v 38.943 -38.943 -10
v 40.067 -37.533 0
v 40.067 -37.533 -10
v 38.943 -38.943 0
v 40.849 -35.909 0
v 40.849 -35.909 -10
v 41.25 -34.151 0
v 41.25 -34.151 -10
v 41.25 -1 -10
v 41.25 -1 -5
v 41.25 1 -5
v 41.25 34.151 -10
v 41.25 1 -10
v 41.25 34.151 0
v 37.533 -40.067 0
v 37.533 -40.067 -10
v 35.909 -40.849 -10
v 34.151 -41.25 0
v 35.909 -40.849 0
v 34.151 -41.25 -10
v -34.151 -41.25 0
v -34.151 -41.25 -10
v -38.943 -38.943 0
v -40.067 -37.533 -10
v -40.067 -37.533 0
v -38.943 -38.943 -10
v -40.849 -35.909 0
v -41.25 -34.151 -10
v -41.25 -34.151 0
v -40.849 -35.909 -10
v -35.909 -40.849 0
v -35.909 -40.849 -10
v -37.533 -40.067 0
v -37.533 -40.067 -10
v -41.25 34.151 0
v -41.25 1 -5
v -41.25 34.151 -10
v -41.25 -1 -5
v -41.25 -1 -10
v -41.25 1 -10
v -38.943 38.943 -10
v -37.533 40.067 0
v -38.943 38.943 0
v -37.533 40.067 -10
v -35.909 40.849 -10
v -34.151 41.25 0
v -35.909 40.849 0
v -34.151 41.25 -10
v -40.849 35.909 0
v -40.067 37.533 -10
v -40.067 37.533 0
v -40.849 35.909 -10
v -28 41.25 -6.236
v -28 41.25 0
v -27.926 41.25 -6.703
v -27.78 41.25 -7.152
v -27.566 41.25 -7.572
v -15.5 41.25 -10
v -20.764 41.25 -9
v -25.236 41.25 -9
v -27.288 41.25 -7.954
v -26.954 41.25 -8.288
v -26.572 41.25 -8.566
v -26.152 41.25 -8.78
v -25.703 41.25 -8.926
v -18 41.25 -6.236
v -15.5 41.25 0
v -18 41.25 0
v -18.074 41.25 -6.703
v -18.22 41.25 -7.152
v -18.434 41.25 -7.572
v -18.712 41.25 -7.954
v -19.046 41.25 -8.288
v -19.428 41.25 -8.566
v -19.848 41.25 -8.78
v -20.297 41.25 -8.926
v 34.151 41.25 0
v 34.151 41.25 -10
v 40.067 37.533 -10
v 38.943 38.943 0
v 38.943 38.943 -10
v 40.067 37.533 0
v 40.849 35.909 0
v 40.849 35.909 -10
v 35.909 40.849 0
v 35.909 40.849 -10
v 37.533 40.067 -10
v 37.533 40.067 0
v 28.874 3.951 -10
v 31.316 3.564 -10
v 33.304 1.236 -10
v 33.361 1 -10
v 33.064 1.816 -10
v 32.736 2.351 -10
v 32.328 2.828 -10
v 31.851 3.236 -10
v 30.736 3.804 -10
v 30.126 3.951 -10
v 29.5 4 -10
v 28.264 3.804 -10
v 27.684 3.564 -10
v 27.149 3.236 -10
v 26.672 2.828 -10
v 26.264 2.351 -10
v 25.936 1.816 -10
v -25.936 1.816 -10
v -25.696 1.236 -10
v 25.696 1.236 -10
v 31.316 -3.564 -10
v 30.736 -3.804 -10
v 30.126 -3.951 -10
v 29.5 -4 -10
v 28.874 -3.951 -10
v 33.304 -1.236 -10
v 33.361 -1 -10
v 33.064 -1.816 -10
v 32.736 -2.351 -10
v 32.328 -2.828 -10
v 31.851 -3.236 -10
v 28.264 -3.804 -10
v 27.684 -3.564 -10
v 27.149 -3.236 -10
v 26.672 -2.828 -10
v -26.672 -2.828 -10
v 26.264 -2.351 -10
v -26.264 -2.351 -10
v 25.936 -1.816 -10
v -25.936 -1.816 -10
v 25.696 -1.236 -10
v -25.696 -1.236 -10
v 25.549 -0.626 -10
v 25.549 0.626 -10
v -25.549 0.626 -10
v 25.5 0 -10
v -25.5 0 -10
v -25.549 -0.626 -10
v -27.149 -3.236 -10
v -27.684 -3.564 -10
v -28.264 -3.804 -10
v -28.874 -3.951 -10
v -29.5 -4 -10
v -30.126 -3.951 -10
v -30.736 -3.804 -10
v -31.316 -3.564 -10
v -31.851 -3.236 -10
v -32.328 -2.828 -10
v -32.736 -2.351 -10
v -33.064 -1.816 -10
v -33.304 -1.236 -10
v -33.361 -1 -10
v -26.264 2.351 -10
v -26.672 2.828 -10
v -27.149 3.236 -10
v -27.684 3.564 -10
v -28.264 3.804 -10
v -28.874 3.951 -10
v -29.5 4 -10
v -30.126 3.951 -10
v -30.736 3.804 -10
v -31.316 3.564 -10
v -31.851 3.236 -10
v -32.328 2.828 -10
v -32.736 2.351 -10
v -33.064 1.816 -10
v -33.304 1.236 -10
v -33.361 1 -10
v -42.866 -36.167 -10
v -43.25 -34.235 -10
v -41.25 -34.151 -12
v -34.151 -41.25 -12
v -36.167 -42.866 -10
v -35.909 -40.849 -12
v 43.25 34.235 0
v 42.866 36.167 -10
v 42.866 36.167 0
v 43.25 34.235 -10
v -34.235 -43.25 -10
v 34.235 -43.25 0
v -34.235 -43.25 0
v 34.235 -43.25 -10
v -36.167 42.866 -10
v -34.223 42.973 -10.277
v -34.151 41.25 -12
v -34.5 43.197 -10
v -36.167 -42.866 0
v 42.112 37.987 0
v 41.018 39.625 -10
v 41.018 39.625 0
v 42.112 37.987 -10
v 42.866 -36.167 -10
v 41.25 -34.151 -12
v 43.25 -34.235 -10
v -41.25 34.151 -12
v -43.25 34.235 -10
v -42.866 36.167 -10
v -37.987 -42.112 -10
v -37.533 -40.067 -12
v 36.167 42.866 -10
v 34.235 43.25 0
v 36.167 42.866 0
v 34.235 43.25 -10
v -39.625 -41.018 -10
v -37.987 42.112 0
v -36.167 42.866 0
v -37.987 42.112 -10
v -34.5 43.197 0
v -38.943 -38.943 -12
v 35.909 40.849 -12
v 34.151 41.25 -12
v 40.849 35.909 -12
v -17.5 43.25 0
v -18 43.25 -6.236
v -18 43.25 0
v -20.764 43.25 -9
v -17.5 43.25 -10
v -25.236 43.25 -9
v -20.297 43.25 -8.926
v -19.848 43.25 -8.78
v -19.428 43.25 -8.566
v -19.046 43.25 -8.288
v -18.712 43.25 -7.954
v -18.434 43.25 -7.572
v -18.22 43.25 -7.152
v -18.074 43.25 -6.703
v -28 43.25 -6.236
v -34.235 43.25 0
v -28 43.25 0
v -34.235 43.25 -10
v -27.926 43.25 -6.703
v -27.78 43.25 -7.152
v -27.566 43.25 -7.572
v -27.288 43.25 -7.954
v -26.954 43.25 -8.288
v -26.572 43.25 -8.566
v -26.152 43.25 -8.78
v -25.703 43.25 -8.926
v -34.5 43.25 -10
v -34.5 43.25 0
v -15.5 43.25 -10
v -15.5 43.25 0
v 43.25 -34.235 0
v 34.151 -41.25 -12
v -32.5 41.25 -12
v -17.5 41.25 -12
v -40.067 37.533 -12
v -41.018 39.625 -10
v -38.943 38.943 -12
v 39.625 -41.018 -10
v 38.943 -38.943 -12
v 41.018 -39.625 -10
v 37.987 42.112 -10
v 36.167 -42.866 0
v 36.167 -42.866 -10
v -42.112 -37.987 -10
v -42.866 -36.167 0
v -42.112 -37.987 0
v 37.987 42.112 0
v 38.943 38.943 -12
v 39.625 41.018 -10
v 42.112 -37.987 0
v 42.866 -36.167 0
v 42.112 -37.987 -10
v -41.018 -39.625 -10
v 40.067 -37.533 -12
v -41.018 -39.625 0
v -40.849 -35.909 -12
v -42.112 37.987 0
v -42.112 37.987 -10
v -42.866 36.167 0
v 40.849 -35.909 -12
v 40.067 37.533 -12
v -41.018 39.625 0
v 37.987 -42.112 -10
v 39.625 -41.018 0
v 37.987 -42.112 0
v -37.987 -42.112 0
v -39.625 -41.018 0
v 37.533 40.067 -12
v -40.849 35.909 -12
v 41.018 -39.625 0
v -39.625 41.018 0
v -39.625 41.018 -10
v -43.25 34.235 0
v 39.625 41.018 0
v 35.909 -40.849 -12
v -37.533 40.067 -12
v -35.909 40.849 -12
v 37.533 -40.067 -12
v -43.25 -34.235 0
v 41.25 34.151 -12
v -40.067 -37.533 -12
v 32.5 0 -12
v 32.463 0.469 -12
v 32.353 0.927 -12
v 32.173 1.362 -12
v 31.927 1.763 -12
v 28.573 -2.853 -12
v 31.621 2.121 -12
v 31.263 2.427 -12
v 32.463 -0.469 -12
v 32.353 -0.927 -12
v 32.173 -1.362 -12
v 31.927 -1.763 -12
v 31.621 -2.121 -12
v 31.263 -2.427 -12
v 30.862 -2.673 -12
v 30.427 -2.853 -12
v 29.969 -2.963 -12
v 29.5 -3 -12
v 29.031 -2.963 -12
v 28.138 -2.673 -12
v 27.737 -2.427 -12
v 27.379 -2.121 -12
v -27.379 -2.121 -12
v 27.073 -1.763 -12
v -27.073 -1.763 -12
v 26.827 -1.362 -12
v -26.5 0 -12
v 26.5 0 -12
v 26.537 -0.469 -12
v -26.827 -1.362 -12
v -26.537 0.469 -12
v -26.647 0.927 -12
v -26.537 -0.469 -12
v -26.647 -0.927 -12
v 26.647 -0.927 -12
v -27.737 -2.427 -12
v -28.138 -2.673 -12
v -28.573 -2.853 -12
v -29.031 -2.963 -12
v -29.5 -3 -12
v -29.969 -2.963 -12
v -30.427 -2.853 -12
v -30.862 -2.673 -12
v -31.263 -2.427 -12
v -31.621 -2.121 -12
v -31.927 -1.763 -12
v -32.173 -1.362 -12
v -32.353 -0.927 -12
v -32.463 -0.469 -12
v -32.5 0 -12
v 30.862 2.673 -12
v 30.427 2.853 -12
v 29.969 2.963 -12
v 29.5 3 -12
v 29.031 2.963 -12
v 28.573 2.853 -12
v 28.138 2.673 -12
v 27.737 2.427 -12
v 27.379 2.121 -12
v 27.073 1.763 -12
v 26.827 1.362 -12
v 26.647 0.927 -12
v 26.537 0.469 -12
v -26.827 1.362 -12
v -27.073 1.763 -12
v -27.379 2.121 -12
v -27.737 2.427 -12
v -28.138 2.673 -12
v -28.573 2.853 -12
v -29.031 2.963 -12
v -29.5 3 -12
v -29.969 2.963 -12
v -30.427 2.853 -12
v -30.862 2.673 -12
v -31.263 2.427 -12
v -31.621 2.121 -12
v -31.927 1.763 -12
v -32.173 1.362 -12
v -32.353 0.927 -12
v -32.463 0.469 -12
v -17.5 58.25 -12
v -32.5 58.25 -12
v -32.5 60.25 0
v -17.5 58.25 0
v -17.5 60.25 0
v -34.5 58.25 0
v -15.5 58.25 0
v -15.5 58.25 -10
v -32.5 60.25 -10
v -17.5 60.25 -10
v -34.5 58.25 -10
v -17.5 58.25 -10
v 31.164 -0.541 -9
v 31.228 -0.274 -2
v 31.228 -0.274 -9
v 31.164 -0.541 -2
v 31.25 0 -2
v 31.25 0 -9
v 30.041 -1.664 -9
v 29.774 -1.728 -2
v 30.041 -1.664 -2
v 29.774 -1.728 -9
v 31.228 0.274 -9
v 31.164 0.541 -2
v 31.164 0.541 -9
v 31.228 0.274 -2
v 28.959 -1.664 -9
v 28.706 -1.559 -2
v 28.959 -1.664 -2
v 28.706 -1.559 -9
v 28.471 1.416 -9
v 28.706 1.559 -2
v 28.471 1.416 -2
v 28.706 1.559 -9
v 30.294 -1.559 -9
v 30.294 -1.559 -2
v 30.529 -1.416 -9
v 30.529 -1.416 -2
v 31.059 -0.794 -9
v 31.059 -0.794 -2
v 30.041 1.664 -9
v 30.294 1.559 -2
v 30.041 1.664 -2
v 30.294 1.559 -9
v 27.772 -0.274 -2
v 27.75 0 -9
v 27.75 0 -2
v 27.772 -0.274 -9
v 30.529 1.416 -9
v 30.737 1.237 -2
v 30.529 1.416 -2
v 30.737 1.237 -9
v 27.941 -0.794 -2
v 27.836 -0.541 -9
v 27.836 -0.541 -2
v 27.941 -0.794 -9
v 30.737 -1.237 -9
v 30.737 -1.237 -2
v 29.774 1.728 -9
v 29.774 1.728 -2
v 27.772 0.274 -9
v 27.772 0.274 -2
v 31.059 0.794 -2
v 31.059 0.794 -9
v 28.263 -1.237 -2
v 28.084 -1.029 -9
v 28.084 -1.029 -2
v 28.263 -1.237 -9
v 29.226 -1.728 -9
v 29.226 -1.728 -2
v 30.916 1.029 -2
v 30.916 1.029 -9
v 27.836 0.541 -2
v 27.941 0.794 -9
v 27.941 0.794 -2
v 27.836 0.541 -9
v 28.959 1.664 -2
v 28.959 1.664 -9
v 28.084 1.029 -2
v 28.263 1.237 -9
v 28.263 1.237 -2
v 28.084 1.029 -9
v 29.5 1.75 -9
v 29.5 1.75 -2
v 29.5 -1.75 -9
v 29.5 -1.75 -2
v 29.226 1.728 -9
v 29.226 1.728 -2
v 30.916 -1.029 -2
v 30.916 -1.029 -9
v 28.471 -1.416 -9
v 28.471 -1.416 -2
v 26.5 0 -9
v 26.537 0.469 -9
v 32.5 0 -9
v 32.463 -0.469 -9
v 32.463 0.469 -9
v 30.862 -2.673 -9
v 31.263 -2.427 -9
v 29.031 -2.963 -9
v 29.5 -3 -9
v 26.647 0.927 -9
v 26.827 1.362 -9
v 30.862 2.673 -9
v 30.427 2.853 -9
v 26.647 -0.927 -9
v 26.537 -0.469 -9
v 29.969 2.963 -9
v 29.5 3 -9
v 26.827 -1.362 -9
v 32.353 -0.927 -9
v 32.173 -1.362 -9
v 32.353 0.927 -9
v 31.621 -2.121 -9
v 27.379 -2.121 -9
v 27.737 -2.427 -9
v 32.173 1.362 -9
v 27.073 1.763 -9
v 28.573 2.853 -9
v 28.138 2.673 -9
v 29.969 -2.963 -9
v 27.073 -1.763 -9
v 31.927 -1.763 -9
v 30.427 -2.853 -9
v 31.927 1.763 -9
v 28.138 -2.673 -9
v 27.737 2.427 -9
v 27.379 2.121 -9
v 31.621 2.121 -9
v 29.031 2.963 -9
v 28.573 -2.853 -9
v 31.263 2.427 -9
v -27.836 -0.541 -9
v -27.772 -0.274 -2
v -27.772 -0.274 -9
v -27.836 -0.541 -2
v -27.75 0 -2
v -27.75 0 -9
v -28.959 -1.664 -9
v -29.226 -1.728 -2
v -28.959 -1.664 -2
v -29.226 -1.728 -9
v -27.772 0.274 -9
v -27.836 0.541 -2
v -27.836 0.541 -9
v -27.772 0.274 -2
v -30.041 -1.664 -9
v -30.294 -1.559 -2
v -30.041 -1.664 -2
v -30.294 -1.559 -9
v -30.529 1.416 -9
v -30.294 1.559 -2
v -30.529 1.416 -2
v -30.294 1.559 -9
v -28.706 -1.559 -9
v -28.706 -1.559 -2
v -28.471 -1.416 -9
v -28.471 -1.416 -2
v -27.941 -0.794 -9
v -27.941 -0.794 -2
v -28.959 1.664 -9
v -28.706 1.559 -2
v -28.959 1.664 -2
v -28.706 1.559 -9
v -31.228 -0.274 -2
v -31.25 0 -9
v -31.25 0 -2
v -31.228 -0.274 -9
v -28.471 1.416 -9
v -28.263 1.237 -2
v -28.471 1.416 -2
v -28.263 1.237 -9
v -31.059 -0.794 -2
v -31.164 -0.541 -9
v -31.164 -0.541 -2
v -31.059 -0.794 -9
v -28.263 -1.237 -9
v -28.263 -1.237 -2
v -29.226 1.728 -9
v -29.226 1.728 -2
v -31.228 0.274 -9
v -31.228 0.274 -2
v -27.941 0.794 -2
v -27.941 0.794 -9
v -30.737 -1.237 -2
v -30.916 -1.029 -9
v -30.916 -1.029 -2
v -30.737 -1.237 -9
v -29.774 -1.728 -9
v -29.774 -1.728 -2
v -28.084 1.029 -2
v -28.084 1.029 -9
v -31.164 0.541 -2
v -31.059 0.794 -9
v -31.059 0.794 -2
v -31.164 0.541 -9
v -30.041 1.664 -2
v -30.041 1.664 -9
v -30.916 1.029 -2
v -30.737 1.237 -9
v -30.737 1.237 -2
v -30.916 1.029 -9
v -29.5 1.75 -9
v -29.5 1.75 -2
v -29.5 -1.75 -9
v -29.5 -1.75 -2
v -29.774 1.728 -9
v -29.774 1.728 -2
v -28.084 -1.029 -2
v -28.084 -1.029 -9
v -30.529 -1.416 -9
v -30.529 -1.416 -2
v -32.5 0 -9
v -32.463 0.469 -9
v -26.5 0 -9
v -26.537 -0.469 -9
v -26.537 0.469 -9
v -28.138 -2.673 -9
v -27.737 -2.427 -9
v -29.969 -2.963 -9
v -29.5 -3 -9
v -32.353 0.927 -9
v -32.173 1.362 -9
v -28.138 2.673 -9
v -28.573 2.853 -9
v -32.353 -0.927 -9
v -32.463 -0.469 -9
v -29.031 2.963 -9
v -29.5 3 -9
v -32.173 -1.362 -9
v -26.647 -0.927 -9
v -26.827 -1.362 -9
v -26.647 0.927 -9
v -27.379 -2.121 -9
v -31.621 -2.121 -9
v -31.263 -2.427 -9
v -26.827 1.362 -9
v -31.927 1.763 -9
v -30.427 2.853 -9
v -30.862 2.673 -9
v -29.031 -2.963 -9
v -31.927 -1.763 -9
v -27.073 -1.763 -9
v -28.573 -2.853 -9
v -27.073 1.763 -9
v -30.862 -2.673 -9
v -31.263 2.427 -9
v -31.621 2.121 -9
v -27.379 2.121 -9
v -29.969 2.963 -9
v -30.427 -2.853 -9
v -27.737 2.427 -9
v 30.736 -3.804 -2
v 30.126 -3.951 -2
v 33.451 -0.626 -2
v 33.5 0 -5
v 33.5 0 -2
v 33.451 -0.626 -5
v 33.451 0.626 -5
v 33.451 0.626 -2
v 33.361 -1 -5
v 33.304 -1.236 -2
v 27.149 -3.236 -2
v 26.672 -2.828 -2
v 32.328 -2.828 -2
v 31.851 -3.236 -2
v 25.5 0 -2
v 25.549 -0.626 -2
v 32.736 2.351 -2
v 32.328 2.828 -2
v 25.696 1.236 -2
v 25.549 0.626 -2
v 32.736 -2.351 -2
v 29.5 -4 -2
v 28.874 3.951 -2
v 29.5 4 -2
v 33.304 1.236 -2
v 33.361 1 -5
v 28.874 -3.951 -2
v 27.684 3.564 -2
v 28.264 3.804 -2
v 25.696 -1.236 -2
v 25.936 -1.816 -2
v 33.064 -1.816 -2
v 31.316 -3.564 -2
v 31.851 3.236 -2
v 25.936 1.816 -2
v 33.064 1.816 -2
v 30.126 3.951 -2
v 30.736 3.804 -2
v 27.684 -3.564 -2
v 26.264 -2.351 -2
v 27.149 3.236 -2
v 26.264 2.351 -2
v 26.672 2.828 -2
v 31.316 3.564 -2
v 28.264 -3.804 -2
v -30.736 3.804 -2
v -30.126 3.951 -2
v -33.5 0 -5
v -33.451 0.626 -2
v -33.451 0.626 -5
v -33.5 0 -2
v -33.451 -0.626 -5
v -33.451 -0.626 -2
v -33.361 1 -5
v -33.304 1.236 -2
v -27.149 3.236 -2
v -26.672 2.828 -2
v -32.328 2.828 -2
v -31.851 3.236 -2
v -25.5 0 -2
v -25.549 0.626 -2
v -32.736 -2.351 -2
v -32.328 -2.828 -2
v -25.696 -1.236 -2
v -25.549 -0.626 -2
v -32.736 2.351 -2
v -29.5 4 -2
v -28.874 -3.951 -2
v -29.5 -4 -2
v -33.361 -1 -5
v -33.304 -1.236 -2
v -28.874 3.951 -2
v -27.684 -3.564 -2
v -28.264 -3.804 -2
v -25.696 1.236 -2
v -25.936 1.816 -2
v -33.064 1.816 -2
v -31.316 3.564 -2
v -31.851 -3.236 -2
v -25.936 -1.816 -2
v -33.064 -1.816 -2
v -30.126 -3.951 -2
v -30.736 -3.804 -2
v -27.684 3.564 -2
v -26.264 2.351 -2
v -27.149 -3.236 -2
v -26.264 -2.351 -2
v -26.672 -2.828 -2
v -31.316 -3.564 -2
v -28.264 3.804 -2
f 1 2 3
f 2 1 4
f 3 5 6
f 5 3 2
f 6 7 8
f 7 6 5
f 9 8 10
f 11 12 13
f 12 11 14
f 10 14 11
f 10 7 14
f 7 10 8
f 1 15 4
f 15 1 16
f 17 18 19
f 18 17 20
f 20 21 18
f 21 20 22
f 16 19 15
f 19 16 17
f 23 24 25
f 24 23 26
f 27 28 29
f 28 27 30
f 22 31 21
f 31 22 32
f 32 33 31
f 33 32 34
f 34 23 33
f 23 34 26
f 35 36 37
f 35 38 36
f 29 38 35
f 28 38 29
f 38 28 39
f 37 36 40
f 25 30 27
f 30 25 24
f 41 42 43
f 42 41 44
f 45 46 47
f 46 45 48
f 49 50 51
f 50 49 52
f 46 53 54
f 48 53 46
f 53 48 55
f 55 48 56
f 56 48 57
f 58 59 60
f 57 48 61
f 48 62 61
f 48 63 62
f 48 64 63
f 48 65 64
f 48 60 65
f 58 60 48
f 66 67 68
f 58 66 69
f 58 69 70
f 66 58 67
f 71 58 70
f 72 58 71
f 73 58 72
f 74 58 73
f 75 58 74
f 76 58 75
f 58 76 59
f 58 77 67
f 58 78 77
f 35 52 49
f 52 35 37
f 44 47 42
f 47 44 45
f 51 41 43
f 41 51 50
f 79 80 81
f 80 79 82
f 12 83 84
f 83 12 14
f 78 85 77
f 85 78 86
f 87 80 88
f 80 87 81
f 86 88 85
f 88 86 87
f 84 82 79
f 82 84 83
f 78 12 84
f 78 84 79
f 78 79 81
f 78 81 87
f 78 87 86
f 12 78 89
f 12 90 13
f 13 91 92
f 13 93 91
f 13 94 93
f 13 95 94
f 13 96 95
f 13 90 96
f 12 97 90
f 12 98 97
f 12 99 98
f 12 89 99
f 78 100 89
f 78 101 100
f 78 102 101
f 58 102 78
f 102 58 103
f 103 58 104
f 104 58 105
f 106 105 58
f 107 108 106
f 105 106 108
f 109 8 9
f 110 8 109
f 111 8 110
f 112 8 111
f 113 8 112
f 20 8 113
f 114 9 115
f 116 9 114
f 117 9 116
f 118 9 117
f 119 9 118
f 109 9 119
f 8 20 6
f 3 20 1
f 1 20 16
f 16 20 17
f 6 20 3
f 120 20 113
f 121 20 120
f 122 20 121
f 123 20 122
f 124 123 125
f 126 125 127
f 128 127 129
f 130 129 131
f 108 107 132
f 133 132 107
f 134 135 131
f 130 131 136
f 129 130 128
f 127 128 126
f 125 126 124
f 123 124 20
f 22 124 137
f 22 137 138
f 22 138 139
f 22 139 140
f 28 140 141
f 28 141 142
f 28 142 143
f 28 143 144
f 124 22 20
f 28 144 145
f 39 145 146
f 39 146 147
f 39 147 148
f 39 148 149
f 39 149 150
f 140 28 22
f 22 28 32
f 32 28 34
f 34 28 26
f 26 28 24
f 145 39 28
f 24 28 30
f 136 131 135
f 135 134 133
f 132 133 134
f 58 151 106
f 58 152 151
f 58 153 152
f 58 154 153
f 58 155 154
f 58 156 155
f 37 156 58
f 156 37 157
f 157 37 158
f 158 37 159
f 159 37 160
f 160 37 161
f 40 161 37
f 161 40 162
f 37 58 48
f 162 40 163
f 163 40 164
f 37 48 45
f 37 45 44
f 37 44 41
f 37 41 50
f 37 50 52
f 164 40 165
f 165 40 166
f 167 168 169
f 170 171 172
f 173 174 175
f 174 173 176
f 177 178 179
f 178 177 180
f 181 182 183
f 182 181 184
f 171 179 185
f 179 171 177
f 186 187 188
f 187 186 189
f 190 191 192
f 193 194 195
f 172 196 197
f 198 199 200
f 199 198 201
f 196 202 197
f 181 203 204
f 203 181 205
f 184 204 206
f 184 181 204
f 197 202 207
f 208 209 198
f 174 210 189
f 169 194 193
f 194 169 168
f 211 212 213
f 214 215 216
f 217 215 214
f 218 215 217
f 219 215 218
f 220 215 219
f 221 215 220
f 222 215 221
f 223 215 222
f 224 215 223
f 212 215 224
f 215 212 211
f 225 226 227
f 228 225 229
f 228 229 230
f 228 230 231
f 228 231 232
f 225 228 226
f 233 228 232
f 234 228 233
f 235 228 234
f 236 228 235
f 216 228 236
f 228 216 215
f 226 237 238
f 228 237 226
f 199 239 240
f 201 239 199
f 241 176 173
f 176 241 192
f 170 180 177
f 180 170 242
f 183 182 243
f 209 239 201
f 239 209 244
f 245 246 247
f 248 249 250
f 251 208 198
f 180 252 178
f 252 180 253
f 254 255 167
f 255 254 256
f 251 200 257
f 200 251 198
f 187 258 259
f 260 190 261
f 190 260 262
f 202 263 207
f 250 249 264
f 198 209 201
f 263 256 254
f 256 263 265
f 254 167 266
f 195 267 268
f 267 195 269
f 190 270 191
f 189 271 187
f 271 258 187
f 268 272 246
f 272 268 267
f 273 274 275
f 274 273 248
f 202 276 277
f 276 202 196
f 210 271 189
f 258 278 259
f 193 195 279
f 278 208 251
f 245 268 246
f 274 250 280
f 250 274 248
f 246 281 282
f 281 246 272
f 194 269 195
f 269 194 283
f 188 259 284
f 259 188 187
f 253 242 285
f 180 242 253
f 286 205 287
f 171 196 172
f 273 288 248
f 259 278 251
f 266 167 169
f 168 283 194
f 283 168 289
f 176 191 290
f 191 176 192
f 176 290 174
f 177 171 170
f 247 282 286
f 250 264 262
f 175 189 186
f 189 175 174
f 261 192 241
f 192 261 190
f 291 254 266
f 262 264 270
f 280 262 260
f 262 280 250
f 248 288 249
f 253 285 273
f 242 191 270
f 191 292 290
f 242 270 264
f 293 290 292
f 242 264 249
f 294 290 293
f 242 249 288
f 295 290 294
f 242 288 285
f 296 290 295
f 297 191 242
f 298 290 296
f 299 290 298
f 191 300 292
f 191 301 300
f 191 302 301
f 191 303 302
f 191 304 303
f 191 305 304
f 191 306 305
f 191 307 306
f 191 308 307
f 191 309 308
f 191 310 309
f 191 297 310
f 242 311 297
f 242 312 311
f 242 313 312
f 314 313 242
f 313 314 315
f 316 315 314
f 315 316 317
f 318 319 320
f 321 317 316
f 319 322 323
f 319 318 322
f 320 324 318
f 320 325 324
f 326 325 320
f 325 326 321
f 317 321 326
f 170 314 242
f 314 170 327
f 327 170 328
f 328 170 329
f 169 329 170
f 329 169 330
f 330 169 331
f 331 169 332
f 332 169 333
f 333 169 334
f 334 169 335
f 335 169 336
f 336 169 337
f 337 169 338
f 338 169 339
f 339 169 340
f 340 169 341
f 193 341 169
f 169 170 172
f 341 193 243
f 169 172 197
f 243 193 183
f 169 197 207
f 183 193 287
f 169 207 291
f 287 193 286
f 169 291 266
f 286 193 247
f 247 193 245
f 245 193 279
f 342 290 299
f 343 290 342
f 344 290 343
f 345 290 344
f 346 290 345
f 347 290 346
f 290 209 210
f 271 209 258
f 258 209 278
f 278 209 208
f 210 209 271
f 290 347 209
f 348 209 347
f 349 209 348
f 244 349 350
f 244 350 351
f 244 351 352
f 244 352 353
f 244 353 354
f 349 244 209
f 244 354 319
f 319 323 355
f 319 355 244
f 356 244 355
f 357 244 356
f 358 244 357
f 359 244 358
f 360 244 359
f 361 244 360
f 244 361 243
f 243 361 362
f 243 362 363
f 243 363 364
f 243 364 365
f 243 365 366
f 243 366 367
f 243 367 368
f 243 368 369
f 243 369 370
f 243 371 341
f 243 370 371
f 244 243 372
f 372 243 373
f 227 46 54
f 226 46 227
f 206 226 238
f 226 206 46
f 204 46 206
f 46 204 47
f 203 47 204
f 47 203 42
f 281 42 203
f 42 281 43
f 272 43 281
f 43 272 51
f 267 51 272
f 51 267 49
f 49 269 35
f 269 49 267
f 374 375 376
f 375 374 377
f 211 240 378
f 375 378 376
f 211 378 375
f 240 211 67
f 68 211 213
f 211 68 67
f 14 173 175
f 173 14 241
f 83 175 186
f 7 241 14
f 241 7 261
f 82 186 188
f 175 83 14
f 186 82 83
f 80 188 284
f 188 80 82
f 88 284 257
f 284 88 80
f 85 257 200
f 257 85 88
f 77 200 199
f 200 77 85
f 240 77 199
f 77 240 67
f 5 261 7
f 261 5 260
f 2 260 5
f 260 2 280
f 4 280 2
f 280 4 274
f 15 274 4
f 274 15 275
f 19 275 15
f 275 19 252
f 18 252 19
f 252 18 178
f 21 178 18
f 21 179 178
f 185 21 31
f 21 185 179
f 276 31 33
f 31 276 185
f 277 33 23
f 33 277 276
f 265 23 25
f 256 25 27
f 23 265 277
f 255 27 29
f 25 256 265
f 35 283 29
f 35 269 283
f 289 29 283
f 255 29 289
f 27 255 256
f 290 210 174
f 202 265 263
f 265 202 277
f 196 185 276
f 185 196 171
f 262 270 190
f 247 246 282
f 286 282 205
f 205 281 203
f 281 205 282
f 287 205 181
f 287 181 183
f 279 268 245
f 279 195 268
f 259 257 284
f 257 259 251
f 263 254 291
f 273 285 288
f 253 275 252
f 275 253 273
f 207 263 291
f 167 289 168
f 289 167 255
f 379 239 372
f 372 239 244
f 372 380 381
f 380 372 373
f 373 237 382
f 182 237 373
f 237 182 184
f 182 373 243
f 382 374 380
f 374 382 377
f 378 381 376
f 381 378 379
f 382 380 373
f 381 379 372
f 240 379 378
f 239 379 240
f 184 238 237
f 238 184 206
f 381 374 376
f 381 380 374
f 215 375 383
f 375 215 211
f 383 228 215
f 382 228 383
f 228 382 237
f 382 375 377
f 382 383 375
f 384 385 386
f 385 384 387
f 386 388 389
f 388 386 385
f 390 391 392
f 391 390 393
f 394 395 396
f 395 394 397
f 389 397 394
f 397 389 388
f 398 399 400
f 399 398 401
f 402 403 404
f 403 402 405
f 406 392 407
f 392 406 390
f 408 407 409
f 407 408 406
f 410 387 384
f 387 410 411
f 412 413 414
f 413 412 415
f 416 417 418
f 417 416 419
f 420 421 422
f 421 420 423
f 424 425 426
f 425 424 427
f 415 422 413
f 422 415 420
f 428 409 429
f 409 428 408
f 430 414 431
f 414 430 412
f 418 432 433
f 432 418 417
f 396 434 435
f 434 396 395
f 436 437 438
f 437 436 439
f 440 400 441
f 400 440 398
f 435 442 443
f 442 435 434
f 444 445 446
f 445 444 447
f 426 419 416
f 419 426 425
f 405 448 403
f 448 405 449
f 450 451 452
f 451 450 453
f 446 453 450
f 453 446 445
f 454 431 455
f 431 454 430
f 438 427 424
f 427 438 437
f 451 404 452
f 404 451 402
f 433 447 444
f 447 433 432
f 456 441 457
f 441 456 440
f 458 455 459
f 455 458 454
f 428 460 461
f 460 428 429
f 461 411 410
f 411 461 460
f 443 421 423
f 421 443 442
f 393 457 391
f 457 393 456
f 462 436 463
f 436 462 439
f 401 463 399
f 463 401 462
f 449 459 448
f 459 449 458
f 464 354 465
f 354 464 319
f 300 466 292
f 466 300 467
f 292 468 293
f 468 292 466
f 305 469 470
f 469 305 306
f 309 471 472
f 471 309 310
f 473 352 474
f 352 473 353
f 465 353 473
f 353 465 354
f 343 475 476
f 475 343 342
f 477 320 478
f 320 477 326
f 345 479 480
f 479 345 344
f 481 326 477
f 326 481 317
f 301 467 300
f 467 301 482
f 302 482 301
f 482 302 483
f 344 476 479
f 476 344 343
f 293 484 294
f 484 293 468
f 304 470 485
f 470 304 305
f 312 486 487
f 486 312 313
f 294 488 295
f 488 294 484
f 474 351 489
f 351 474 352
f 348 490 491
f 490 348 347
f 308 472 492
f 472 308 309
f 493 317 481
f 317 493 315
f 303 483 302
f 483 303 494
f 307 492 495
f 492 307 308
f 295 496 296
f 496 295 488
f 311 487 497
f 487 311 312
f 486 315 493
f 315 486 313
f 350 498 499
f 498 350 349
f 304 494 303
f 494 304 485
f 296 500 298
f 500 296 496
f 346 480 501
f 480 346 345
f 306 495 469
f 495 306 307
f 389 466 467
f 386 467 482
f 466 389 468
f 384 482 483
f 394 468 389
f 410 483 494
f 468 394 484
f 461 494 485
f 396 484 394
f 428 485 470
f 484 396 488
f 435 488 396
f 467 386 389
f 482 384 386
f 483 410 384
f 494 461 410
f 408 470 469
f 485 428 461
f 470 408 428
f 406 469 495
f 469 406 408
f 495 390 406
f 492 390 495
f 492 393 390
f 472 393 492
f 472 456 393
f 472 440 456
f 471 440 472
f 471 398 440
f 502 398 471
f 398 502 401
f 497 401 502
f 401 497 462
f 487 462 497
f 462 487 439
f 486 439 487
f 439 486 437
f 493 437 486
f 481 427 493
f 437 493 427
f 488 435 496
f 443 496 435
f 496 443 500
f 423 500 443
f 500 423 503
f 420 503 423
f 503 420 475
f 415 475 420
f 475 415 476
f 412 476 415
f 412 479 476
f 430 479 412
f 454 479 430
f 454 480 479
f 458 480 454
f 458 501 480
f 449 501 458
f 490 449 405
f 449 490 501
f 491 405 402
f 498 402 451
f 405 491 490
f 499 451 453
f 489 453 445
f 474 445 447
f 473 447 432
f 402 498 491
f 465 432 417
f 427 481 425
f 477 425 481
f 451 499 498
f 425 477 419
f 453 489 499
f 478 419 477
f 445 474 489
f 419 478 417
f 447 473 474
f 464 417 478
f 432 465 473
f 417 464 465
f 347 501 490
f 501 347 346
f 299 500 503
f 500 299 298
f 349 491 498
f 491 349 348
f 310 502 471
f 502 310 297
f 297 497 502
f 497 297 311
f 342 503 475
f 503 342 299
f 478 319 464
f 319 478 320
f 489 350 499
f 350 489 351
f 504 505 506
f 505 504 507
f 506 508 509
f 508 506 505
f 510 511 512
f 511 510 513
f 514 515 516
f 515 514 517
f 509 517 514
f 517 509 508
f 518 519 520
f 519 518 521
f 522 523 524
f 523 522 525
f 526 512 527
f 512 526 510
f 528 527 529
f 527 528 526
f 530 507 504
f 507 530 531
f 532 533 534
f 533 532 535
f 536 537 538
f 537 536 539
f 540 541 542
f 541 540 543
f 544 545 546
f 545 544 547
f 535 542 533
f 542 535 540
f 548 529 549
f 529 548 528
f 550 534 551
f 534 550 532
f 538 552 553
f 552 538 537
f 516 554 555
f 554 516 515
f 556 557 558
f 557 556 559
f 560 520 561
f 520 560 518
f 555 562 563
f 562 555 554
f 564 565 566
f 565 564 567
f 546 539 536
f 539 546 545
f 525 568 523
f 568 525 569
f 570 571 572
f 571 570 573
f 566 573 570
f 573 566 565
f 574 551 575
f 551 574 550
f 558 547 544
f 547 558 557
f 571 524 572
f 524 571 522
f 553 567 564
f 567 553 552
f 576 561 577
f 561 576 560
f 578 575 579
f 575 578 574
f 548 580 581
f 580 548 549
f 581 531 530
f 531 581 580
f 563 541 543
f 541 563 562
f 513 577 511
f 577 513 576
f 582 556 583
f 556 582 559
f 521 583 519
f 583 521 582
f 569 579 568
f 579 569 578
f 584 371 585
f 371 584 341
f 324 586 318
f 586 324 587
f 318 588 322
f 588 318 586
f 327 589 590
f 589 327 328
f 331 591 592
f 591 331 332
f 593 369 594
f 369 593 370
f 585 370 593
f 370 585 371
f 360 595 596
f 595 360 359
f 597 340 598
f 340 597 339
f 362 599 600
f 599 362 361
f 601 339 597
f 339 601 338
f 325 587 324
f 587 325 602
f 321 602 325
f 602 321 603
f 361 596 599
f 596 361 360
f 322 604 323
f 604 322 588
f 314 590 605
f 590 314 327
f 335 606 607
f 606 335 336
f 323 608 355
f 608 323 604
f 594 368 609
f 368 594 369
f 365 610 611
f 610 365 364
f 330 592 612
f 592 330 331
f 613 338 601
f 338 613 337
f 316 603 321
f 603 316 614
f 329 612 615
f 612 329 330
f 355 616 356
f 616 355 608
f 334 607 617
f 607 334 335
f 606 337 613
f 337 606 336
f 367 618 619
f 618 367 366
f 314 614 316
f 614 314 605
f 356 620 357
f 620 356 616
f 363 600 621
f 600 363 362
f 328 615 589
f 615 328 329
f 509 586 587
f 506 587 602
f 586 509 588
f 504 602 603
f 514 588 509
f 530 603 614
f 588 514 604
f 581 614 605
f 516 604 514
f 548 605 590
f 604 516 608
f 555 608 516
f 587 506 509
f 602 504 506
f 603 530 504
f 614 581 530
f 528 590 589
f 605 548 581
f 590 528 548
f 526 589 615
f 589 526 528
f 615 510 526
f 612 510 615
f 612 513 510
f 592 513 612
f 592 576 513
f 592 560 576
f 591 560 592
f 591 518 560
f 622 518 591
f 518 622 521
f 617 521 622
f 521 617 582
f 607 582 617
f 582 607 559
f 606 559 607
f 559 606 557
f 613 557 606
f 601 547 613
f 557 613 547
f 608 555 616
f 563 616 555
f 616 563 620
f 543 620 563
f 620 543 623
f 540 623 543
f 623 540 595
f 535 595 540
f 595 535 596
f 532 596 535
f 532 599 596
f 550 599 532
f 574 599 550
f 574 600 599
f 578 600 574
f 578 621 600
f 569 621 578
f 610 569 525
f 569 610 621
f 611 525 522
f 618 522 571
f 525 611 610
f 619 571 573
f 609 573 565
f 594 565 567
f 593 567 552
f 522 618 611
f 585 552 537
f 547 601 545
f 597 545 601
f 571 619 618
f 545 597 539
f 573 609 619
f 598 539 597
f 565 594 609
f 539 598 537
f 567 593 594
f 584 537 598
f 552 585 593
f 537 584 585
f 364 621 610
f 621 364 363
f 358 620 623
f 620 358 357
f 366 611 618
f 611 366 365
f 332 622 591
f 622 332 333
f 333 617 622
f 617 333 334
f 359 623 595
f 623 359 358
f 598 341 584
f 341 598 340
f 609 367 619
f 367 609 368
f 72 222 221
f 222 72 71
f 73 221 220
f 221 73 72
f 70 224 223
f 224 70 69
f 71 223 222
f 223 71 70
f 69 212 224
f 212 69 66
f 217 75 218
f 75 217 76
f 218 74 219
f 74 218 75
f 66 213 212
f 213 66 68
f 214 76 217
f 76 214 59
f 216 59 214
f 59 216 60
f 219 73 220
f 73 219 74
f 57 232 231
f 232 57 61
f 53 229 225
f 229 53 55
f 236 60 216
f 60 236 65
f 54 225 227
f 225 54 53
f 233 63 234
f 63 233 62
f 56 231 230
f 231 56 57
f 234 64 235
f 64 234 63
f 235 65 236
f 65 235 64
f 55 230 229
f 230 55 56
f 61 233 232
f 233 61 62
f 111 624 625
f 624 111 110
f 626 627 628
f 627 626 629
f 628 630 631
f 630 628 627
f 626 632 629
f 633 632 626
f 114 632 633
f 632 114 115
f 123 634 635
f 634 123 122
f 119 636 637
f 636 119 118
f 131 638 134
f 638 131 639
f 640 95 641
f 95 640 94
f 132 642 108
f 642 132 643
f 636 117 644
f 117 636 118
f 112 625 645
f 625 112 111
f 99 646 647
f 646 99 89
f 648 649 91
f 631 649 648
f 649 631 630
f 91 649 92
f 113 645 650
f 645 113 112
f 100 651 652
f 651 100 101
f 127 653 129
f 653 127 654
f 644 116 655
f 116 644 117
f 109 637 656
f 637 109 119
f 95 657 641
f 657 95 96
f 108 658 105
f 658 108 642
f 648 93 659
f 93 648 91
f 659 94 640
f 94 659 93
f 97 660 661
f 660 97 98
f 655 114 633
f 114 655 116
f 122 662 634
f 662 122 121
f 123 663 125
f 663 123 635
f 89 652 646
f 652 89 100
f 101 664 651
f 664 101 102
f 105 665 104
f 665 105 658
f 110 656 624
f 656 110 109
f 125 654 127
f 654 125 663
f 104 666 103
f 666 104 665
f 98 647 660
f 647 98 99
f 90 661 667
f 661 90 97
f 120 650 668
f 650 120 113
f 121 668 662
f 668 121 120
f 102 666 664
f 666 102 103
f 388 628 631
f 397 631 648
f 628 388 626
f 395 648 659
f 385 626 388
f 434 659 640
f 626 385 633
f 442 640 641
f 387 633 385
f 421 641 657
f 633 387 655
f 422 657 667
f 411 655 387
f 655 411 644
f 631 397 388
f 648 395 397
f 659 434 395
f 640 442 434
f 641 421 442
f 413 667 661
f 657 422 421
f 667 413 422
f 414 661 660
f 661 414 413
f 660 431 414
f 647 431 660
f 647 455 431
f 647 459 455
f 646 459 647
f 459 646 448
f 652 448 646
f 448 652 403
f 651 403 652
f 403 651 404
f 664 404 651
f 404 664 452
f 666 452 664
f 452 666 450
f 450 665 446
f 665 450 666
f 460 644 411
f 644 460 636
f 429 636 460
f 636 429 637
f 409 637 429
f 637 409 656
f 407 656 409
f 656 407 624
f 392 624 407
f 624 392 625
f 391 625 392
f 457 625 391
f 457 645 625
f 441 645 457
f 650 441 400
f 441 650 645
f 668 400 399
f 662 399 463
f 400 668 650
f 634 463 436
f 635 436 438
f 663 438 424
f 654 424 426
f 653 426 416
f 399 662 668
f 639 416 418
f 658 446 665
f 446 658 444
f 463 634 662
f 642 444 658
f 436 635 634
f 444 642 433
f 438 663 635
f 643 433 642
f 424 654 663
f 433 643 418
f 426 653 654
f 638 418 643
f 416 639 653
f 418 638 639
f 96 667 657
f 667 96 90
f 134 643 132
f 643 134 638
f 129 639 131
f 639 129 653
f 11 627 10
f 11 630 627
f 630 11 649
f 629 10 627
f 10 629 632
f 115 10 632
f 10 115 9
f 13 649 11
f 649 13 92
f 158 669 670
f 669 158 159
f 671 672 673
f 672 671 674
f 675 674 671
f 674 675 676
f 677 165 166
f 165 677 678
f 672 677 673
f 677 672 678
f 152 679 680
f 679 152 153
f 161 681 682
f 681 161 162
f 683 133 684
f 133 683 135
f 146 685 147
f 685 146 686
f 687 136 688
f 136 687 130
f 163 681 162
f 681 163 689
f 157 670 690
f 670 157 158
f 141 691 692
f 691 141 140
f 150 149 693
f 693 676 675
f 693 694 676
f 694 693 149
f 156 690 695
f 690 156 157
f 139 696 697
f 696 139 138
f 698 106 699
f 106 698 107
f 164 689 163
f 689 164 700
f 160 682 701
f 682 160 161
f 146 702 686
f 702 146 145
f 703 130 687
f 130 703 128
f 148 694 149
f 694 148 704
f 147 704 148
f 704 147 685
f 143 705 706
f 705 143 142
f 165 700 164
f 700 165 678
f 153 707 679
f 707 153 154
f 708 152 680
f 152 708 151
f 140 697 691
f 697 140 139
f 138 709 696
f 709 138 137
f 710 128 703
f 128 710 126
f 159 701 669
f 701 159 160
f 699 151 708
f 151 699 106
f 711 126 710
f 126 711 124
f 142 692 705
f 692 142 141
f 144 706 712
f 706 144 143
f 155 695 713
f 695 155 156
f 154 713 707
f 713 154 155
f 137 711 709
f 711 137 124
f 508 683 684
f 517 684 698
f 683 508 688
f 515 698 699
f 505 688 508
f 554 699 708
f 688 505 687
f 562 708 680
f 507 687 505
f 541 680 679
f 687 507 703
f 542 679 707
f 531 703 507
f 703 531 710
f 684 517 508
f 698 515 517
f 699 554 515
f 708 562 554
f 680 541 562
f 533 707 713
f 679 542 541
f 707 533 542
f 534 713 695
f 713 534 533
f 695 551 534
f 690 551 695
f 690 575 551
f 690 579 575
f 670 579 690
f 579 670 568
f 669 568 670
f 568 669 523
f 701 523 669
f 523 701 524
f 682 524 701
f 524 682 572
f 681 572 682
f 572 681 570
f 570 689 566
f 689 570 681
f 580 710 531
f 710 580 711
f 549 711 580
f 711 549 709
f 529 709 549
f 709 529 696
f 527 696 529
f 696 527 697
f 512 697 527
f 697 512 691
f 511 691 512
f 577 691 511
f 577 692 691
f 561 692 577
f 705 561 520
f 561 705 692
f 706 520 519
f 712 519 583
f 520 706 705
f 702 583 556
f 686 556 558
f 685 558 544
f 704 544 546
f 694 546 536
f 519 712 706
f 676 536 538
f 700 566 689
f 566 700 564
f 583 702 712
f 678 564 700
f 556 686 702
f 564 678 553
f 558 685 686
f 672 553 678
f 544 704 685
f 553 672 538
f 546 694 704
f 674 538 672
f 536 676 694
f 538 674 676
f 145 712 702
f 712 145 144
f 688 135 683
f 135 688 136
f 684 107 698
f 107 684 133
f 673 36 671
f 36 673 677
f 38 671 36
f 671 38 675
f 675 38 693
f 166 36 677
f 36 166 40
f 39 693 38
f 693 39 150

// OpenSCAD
include <BOSL/constants.scad>
use <BOSL/shapes.scad>
use <BOSL/transforms.scad>

wall=2;

w_inner=82.5;
w_outer=w_inner+2*wall;
h_inner=10;
h_outer=h_inner+wall;

w_bar_inner=15;
w_bar_outer=w_bar_inner+2*wall;




module socket_cover() {
    module mass() {
        difference() {
            hull() {
                cuboid([w_inner, w_inner, h_outer], edges=EDGES_Z_ALL, fillet=8, align=V_TOP);
                cuboid([w_outer, w_outer, h_inner], edges=EDGES_Z_ALL, fillet=10, align=V_TOP);
            }
            zmove(-1)cuboid([w_inner, w_inner, h_inner+1], edges=EDGES_Z_ALL, fillet=8, align=V_TOP);
        }
    }
    
    module single_cyl() {
        cylinder(d=8, h=h_inner, $fn=40);
        zmove(h_inner/2-2) cuboid([12, wall, h_inner/2], align=V_RIGHT+V_TOP);
    }

    module single_hole() {
        cylinder(d=3.5, h=h_outer+1, $fn=40);
        zmove(h_outer-3) cylinder(d=6, h=4, $fn=40);
    }

    difference() {
        union() {
            mass();
            move(x=29.5, z=2) single_cyl();
            zrot(180) move(x=29.5, z=2) single_cyl();
        }
        
        xmove(29.5) single_hole();
        xmove(-29.5) single_hole();
    }
}

module bar() {
    difference() {
        cuboid(
            [w_bar_outer, w_bar_outer, h_outer], 
            edges=EDGES_Z_FR+EDGES_TOP-EDGE_TOP_BK, chamfer=2, 
            align=V_TOP+V_FRONT
        );
        move(x=-wall/2, y=-wall, z=-1) cuboid(
            [w_bar_inner+wall, w_bar_inner, h_inner+1], 
  
            align=V_TOP+V_FRONT
        );
    }
}


xrot(180) difference() {
    union() {
        socket_cover();
        move(x=-25, y=-w_outer/2+wall) bar();
    }
    move(x=-23, y=-w_outer/2+1, z=-1) cuboid([10, wall*2, h_inner], edges=EDGES_Y_TOP, fillet=3, $fn=40, align=V_TOP);
}
